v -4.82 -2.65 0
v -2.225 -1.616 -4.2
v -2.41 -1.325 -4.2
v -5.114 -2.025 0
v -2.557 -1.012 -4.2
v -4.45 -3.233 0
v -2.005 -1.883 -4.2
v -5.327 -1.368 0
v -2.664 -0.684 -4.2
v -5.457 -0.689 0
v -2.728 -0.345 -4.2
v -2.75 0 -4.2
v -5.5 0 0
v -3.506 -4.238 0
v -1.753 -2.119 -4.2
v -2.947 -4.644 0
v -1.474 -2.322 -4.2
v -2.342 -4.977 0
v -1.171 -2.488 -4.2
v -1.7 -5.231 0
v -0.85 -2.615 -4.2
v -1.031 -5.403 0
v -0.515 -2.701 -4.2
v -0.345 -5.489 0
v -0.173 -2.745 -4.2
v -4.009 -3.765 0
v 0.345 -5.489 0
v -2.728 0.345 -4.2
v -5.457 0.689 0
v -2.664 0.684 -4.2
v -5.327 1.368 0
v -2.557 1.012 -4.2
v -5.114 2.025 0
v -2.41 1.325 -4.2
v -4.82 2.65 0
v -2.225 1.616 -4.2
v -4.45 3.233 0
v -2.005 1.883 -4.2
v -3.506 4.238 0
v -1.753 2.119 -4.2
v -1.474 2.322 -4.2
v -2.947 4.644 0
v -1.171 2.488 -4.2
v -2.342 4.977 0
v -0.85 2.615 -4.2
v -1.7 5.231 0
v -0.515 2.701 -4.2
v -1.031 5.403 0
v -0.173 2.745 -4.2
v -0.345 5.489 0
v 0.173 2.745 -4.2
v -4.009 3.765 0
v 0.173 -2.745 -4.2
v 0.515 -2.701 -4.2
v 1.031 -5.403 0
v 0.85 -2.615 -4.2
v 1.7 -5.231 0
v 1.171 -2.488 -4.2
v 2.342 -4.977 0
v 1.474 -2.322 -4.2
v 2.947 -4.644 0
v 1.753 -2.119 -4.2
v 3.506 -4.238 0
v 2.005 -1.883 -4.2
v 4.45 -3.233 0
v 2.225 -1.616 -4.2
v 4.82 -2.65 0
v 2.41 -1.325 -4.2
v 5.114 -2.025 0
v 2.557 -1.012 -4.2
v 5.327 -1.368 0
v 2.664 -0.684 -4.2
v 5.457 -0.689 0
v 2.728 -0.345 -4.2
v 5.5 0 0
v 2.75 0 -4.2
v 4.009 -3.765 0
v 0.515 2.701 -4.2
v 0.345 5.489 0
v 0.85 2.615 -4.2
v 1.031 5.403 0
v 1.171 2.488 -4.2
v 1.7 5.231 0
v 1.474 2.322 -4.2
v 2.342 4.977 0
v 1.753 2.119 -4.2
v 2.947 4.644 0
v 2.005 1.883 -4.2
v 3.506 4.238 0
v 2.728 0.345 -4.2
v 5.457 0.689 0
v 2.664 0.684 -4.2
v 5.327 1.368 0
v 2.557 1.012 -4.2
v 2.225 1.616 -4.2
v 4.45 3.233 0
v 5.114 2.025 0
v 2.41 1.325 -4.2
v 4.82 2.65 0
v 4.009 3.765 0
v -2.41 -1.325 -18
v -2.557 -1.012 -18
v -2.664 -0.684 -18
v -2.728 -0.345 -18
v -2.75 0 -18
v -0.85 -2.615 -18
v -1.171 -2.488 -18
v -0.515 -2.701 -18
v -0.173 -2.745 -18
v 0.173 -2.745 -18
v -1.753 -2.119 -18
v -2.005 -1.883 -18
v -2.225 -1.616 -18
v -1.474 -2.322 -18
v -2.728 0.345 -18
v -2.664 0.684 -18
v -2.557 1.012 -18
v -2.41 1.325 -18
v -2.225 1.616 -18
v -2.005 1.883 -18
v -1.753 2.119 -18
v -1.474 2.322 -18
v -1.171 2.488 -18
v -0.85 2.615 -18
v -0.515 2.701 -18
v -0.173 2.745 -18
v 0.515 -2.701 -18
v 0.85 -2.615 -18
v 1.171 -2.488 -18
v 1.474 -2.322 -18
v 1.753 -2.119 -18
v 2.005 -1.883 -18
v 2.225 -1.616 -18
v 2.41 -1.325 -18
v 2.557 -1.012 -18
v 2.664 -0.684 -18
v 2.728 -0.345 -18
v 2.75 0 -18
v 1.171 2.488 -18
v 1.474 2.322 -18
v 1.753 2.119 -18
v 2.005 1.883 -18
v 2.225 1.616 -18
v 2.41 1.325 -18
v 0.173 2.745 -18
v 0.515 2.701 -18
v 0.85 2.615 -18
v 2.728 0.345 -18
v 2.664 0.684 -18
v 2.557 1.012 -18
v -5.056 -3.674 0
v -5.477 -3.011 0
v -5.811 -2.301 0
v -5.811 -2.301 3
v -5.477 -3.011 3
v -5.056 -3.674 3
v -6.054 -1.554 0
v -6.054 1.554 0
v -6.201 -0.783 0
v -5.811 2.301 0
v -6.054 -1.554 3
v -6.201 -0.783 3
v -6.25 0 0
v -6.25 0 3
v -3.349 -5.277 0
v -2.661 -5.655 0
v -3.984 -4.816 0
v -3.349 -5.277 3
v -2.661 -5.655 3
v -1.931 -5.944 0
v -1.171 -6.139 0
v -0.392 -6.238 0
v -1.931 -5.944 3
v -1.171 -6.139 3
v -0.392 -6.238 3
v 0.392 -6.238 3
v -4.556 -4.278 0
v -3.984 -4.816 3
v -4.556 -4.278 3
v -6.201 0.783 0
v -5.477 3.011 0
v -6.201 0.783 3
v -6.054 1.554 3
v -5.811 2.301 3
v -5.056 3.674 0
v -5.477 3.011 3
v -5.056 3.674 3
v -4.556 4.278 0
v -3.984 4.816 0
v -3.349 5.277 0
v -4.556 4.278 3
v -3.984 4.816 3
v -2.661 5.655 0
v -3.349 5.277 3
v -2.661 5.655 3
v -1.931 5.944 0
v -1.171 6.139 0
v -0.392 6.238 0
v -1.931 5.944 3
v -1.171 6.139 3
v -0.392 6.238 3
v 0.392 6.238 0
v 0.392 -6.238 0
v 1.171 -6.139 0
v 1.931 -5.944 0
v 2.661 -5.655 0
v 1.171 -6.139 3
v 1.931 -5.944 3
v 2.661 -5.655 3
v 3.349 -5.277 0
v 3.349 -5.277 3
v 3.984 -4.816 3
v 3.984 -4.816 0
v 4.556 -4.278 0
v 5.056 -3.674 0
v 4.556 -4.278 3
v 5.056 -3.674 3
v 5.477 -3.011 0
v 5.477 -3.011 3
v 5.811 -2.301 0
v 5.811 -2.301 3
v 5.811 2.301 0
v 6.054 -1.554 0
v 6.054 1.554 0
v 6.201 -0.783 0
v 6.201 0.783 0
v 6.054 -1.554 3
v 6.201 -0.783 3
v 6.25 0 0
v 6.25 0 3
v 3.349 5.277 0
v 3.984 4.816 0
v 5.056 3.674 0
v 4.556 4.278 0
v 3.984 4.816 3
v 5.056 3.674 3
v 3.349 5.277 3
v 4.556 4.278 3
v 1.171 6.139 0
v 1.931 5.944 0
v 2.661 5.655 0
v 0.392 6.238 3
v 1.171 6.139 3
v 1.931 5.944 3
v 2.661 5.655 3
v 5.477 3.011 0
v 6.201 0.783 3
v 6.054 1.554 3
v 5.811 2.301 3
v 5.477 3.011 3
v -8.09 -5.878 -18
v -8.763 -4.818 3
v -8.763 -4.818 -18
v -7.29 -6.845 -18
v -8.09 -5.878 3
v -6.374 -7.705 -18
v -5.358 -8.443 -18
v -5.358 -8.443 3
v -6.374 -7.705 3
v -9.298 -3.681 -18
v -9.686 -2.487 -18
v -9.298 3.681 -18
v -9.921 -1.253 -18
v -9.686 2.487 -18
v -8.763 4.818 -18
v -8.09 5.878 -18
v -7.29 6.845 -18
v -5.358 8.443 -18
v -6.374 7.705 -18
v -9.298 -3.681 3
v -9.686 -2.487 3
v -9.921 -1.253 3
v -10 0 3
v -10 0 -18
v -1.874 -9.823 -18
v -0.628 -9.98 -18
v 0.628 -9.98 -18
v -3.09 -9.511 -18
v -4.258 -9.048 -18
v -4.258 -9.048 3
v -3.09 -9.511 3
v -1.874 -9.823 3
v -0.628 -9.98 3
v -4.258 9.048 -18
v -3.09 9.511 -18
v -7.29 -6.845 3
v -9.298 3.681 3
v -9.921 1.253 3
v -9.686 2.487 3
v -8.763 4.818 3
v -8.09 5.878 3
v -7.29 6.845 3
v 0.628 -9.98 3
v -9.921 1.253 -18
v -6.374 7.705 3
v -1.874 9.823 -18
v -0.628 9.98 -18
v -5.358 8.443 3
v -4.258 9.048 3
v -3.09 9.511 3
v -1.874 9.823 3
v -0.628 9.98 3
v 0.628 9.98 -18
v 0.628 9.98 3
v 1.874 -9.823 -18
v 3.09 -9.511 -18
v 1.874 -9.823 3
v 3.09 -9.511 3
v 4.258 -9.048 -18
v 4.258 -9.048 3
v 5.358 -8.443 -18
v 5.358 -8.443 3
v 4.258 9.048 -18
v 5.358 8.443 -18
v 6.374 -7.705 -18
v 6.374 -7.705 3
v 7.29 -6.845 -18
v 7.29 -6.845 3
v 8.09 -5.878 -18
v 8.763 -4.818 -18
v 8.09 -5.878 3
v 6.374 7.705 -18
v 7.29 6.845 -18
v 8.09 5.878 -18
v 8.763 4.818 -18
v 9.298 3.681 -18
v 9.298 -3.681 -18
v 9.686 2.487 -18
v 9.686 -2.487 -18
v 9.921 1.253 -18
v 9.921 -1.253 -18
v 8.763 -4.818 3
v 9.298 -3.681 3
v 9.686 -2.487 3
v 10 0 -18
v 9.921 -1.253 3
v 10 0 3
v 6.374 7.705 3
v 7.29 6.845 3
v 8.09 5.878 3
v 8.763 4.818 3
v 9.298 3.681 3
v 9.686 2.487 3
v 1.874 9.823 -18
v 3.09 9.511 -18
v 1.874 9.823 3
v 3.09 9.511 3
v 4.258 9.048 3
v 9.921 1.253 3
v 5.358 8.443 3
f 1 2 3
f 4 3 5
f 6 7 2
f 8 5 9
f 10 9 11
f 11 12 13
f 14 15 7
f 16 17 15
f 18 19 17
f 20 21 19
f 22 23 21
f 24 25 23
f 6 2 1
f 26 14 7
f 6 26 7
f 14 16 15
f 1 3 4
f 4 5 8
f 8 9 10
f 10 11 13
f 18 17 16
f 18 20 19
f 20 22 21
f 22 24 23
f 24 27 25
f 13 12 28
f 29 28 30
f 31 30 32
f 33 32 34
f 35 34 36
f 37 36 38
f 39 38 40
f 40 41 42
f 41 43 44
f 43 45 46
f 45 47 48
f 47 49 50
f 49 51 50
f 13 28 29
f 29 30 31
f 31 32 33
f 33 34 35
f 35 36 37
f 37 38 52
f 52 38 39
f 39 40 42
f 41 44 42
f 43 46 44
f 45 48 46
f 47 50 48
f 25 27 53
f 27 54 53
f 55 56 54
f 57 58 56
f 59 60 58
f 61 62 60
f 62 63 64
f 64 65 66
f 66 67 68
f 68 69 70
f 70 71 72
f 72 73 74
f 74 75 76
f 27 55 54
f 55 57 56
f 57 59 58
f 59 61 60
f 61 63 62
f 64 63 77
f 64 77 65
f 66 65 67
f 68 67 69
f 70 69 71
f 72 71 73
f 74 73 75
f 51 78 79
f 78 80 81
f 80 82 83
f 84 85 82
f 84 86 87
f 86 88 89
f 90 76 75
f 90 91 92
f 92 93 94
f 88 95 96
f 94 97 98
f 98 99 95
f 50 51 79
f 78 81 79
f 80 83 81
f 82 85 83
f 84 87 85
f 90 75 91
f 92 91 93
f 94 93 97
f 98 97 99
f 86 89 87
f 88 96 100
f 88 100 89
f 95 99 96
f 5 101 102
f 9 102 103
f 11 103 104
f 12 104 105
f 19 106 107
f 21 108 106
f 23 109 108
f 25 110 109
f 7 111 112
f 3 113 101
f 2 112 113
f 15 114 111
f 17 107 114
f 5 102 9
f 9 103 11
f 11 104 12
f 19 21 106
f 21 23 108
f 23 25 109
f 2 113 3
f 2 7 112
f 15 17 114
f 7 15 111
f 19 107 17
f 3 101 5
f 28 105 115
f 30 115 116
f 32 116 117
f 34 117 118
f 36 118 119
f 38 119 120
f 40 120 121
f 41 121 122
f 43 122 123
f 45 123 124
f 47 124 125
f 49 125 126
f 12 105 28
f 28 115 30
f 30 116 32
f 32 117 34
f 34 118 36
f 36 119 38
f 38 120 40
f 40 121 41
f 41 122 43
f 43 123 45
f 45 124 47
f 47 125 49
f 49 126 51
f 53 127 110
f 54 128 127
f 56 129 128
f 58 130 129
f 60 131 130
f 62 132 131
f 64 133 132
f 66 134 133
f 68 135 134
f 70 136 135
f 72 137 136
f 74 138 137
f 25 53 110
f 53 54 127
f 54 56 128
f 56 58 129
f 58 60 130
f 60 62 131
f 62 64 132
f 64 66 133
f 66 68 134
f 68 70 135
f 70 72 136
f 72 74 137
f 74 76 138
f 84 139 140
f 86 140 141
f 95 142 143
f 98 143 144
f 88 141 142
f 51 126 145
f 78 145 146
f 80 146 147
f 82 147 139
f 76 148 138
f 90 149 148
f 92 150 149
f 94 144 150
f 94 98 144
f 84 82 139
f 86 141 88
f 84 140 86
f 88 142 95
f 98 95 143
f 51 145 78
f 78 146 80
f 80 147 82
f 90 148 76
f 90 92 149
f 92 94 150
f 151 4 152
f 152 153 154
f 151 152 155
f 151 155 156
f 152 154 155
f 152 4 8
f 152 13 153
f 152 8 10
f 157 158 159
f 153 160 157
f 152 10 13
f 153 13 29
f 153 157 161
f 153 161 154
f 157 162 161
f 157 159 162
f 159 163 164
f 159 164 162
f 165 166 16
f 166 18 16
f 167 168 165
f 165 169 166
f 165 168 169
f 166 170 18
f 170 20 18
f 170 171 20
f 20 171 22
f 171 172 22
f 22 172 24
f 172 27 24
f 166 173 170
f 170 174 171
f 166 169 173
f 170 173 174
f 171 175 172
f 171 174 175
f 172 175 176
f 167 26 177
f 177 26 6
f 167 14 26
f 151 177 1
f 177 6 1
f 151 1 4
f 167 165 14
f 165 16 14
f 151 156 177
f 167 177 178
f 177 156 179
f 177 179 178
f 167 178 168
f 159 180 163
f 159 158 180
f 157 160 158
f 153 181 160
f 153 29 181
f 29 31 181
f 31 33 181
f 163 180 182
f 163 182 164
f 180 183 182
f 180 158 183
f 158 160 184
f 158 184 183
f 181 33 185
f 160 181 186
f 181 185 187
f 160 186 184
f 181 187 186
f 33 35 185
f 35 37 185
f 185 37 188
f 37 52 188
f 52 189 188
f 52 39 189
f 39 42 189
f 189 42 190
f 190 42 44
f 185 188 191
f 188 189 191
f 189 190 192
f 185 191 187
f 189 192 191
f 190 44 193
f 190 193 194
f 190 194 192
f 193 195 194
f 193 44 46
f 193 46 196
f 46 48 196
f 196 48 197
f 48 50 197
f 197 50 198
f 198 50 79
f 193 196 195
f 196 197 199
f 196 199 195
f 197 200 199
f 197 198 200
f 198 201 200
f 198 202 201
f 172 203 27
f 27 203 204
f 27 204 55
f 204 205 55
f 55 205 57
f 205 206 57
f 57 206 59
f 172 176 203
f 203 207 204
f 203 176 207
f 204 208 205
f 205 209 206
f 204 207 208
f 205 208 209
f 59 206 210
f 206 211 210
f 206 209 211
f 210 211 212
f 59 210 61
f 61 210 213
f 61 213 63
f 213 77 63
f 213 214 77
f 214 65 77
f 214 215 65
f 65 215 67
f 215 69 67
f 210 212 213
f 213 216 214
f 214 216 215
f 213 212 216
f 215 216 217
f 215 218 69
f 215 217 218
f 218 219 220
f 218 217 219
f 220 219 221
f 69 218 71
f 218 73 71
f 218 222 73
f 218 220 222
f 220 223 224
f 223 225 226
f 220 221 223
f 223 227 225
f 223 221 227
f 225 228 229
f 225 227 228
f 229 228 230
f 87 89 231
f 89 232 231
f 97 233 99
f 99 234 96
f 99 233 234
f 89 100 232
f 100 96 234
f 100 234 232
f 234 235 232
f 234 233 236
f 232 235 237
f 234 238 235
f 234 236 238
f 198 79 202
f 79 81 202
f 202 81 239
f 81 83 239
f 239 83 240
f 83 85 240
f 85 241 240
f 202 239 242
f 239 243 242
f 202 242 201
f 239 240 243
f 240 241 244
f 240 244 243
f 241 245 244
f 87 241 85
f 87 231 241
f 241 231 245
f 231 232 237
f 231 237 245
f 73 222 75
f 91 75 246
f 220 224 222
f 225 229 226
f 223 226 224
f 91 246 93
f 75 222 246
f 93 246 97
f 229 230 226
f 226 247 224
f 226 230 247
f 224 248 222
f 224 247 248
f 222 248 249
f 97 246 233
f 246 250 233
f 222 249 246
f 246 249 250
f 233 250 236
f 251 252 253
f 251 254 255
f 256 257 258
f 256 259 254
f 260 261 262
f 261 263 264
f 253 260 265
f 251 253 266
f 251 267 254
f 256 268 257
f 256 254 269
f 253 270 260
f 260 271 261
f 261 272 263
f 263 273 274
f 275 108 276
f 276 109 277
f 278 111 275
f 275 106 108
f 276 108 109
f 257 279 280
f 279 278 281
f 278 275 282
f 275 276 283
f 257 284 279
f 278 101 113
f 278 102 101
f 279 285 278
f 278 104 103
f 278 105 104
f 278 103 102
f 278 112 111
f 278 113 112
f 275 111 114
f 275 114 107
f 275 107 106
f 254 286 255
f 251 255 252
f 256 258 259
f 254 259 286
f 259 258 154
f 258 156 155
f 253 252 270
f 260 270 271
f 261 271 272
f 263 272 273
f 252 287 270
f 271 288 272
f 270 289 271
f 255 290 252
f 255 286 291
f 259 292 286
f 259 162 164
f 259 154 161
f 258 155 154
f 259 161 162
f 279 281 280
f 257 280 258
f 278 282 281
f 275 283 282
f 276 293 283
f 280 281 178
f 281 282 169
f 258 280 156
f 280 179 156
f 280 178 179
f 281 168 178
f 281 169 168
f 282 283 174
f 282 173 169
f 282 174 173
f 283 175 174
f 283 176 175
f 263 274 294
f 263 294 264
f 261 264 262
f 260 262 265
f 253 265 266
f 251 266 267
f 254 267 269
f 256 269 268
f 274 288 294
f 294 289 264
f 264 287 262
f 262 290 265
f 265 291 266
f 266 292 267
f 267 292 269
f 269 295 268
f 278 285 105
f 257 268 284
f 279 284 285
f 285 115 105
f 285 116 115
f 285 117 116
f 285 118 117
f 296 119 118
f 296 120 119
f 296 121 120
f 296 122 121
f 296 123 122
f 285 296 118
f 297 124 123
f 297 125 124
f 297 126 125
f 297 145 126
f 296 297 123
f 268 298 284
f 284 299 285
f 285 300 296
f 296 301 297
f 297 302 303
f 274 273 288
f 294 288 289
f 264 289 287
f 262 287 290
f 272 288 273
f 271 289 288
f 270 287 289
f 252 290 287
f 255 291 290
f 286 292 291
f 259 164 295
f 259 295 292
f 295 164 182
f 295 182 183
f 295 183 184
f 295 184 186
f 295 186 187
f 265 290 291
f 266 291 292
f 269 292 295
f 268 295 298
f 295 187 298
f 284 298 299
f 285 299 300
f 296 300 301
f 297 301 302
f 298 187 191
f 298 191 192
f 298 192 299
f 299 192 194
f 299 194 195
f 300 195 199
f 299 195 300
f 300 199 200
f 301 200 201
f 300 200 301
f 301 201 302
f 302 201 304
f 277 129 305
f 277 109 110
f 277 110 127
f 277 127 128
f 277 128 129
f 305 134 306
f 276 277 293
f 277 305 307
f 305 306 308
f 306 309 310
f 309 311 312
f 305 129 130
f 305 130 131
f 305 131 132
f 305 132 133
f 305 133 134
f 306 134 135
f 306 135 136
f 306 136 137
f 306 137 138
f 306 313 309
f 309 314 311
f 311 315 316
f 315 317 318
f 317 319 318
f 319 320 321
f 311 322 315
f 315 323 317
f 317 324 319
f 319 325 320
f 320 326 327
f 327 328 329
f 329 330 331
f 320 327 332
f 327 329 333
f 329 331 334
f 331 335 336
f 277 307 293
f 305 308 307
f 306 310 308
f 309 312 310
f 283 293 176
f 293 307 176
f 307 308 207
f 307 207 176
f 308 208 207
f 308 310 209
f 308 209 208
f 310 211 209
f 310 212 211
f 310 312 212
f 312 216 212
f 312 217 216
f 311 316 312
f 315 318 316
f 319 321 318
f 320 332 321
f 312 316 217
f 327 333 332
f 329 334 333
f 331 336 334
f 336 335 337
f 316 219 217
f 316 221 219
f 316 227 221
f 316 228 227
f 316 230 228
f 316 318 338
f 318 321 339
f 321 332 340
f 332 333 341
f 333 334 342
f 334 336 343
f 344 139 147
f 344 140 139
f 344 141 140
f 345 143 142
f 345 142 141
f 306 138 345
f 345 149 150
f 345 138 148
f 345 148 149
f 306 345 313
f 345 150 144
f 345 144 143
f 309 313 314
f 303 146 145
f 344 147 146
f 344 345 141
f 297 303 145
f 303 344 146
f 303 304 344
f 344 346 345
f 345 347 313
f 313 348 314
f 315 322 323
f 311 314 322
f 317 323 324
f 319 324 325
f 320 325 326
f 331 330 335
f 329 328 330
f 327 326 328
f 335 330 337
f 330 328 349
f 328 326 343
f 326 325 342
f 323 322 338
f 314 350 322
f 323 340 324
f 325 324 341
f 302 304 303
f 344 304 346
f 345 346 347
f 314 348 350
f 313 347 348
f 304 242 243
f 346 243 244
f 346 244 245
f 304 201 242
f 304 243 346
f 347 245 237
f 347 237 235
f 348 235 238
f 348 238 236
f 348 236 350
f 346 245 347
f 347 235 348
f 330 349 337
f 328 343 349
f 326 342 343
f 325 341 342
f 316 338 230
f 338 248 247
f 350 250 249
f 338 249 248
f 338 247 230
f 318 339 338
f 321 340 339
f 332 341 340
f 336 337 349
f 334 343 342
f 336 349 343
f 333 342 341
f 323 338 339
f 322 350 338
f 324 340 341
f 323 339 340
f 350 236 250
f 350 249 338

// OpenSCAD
$fn = 50;

difference() {
	union() {
		translate(v = [0, 0, -18.0]) {
			cylinder(h = 21, r = 10.0);
		}
	}
	union() {
		translate(v = [0, 0, 0]) {
			rotate(a = [0, 0, 0]) {
				difference() {
					union() {
						translate(v = [0, 0, -21.0]) {
							cylinder(h = 21, r = 2.25);
						}
						translate(v = [0, 0, -4.2]) {
							cylinder(h = 4.2, r1 = 2.75, r2 = 5.5);
						}
						translate(v = [0, 0, -21.0]) {
							cylinder(h = 21, r = 2.75);
						}
						translate(v = [0, 0, -21.0]) {
							cylinder(h = 21, r = 2.25);
						}
					}
					union();
				}
			}
		}
		#cylinder(h = 3, r = 6.25);
	}
}
